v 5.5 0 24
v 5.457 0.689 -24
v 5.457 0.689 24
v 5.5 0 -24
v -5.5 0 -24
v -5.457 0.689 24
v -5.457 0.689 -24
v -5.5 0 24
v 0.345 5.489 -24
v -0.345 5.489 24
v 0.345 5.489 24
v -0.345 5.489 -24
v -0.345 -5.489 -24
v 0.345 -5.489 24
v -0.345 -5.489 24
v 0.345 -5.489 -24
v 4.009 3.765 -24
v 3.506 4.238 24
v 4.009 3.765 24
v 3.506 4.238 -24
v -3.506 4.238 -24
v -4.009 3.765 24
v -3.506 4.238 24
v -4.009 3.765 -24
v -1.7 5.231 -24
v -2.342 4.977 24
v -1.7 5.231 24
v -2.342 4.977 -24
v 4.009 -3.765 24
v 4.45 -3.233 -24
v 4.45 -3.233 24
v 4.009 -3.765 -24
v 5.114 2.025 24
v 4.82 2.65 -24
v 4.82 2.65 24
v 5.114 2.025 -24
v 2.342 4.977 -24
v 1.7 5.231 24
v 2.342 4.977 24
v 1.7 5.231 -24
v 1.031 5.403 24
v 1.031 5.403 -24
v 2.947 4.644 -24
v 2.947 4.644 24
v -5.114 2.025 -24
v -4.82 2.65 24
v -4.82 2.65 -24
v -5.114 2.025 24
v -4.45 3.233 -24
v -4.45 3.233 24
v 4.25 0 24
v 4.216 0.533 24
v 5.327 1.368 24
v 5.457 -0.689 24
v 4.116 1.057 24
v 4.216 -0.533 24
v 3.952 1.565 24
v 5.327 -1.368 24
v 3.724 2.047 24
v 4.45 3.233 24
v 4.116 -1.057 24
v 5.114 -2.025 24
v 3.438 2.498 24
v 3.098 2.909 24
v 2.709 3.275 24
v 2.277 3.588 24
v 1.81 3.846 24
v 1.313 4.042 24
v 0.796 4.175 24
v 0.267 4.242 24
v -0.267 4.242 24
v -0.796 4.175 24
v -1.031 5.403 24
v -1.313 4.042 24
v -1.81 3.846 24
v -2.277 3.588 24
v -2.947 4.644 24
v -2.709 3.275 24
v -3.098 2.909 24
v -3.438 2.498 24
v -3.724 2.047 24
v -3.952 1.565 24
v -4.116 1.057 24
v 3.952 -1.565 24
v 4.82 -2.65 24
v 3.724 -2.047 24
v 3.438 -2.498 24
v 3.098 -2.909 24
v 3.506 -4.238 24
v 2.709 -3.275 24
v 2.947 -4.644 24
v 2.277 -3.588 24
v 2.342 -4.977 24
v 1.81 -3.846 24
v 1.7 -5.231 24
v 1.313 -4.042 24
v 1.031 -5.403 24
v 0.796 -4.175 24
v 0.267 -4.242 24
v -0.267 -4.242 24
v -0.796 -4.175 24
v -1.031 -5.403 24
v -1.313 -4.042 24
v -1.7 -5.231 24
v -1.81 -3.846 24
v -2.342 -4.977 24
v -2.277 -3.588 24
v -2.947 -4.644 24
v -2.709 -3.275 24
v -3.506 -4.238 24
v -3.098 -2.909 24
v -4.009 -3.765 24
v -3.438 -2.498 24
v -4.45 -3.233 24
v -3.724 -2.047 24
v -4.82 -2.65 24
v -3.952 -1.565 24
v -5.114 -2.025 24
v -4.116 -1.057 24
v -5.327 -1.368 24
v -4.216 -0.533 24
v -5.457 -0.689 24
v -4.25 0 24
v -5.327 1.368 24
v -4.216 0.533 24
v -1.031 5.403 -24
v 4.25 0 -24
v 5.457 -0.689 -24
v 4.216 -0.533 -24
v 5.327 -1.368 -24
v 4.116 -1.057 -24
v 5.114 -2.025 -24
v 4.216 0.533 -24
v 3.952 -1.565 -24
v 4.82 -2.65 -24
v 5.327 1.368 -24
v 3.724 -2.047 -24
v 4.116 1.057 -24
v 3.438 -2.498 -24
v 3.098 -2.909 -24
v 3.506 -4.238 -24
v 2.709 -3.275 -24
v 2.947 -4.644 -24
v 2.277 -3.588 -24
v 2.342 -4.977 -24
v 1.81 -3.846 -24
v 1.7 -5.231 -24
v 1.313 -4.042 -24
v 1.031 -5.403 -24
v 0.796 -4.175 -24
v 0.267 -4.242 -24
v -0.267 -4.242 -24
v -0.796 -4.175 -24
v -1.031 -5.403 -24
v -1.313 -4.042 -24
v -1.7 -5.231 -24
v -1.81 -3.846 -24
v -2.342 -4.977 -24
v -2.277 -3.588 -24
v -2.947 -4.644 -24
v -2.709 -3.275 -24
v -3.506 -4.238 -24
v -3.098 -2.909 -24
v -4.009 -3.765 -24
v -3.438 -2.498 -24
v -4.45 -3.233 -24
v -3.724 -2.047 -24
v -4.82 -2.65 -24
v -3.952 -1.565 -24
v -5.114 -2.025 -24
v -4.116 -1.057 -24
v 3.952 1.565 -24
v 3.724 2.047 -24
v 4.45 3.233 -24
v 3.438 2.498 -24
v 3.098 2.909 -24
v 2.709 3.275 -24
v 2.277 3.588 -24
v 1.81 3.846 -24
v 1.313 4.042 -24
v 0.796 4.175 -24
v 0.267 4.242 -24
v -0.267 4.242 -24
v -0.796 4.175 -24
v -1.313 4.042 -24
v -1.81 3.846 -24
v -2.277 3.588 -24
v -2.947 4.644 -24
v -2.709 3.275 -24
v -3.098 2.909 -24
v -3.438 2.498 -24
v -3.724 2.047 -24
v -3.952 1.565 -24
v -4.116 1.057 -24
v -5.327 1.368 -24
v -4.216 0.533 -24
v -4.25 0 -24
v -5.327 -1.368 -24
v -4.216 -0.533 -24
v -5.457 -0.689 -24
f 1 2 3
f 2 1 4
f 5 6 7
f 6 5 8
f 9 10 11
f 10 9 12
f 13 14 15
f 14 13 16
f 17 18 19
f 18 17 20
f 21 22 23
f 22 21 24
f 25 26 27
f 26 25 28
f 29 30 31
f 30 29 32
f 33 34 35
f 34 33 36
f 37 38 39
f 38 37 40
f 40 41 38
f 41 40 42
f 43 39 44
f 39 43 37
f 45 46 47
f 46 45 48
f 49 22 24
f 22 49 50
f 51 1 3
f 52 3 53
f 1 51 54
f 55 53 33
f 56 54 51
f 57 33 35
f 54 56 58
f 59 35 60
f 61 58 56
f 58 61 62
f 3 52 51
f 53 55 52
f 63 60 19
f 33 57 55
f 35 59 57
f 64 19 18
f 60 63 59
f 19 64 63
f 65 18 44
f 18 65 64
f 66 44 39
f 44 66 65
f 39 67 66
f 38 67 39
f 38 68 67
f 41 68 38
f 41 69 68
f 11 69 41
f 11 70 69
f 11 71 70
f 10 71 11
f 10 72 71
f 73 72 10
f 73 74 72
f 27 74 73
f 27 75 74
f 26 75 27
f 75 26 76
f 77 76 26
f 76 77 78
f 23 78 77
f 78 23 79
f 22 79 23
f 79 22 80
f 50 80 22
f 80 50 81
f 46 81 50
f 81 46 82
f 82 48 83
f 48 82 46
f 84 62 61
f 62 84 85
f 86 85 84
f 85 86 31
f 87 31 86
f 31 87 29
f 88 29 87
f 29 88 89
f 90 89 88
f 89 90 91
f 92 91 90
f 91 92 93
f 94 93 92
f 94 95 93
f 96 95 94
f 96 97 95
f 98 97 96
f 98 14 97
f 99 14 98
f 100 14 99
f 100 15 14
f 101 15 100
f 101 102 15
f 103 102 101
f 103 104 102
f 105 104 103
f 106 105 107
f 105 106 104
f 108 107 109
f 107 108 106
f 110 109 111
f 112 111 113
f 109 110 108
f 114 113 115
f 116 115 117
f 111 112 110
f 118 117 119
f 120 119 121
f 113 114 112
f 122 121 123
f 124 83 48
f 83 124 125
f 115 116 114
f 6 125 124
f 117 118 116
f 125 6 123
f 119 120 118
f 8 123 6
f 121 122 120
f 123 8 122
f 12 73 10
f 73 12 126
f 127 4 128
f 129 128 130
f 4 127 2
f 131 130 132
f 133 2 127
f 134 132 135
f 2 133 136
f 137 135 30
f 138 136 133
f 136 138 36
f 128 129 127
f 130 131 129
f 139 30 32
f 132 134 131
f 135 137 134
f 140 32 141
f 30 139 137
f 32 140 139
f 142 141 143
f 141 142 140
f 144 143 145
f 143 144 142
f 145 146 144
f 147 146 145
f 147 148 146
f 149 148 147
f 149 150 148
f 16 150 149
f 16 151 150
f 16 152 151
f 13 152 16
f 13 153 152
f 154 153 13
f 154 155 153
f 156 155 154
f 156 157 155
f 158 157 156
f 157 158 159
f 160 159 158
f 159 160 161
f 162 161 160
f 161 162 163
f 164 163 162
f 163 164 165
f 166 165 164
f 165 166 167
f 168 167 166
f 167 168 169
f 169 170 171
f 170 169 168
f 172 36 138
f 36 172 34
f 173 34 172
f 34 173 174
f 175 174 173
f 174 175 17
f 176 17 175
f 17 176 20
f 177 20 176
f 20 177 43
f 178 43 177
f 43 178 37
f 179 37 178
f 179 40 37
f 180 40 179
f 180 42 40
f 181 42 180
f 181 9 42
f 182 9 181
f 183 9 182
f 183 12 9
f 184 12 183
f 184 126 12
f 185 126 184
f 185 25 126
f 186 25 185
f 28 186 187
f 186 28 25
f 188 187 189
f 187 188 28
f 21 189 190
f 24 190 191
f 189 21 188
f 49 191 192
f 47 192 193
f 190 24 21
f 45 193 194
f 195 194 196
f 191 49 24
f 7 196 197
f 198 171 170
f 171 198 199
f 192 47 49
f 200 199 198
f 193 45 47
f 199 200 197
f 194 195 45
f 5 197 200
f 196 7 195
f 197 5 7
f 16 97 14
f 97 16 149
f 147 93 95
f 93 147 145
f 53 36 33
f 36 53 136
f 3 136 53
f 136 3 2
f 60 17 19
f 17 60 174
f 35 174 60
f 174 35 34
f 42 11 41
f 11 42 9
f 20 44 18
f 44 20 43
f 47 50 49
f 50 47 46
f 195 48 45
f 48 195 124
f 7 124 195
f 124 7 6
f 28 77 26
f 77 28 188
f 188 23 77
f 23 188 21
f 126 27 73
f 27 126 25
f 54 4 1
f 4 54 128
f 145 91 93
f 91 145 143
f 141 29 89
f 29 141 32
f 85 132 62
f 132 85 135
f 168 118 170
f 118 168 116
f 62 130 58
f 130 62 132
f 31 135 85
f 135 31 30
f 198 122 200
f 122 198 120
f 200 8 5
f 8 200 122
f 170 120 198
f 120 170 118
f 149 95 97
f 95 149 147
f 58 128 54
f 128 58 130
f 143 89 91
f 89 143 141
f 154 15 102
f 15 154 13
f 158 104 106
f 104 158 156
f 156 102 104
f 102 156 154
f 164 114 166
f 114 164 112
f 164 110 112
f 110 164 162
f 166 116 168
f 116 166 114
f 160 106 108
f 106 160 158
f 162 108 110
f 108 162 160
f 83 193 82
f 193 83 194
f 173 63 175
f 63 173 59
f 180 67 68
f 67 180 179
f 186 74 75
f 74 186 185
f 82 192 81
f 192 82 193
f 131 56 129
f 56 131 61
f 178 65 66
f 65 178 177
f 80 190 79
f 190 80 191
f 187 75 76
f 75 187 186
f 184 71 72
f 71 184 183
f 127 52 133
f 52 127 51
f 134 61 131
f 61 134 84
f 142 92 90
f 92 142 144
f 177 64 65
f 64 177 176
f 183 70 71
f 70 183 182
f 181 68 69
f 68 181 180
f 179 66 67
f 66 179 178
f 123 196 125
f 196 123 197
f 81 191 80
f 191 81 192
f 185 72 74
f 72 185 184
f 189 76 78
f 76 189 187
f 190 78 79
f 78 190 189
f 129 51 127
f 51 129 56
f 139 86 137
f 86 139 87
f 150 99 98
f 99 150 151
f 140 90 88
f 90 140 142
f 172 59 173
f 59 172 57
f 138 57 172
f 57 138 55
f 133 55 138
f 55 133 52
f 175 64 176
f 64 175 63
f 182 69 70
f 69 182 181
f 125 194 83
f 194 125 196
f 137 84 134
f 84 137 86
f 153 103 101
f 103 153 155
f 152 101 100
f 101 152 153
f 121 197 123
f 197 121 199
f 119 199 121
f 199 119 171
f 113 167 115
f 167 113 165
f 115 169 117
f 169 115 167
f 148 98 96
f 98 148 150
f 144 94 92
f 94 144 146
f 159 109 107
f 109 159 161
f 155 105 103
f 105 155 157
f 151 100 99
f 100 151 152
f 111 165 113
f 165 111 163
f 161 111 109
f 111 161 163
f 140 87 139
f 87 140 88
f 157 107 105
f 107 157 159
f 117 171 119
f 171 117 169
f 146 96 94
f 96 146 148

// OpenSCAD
$fn = 50;


difference() {
	union() {
		translate(v = [0, 0, -24.0000000000]) {
			cylinder(h = 48, r = 5.5000000000);
		}
	}
	union() {
		translate(v = [0, 0, -100.0000000000]) {
			cylinder(h = 200, r = 4.2500000000);
		}
	}
}
